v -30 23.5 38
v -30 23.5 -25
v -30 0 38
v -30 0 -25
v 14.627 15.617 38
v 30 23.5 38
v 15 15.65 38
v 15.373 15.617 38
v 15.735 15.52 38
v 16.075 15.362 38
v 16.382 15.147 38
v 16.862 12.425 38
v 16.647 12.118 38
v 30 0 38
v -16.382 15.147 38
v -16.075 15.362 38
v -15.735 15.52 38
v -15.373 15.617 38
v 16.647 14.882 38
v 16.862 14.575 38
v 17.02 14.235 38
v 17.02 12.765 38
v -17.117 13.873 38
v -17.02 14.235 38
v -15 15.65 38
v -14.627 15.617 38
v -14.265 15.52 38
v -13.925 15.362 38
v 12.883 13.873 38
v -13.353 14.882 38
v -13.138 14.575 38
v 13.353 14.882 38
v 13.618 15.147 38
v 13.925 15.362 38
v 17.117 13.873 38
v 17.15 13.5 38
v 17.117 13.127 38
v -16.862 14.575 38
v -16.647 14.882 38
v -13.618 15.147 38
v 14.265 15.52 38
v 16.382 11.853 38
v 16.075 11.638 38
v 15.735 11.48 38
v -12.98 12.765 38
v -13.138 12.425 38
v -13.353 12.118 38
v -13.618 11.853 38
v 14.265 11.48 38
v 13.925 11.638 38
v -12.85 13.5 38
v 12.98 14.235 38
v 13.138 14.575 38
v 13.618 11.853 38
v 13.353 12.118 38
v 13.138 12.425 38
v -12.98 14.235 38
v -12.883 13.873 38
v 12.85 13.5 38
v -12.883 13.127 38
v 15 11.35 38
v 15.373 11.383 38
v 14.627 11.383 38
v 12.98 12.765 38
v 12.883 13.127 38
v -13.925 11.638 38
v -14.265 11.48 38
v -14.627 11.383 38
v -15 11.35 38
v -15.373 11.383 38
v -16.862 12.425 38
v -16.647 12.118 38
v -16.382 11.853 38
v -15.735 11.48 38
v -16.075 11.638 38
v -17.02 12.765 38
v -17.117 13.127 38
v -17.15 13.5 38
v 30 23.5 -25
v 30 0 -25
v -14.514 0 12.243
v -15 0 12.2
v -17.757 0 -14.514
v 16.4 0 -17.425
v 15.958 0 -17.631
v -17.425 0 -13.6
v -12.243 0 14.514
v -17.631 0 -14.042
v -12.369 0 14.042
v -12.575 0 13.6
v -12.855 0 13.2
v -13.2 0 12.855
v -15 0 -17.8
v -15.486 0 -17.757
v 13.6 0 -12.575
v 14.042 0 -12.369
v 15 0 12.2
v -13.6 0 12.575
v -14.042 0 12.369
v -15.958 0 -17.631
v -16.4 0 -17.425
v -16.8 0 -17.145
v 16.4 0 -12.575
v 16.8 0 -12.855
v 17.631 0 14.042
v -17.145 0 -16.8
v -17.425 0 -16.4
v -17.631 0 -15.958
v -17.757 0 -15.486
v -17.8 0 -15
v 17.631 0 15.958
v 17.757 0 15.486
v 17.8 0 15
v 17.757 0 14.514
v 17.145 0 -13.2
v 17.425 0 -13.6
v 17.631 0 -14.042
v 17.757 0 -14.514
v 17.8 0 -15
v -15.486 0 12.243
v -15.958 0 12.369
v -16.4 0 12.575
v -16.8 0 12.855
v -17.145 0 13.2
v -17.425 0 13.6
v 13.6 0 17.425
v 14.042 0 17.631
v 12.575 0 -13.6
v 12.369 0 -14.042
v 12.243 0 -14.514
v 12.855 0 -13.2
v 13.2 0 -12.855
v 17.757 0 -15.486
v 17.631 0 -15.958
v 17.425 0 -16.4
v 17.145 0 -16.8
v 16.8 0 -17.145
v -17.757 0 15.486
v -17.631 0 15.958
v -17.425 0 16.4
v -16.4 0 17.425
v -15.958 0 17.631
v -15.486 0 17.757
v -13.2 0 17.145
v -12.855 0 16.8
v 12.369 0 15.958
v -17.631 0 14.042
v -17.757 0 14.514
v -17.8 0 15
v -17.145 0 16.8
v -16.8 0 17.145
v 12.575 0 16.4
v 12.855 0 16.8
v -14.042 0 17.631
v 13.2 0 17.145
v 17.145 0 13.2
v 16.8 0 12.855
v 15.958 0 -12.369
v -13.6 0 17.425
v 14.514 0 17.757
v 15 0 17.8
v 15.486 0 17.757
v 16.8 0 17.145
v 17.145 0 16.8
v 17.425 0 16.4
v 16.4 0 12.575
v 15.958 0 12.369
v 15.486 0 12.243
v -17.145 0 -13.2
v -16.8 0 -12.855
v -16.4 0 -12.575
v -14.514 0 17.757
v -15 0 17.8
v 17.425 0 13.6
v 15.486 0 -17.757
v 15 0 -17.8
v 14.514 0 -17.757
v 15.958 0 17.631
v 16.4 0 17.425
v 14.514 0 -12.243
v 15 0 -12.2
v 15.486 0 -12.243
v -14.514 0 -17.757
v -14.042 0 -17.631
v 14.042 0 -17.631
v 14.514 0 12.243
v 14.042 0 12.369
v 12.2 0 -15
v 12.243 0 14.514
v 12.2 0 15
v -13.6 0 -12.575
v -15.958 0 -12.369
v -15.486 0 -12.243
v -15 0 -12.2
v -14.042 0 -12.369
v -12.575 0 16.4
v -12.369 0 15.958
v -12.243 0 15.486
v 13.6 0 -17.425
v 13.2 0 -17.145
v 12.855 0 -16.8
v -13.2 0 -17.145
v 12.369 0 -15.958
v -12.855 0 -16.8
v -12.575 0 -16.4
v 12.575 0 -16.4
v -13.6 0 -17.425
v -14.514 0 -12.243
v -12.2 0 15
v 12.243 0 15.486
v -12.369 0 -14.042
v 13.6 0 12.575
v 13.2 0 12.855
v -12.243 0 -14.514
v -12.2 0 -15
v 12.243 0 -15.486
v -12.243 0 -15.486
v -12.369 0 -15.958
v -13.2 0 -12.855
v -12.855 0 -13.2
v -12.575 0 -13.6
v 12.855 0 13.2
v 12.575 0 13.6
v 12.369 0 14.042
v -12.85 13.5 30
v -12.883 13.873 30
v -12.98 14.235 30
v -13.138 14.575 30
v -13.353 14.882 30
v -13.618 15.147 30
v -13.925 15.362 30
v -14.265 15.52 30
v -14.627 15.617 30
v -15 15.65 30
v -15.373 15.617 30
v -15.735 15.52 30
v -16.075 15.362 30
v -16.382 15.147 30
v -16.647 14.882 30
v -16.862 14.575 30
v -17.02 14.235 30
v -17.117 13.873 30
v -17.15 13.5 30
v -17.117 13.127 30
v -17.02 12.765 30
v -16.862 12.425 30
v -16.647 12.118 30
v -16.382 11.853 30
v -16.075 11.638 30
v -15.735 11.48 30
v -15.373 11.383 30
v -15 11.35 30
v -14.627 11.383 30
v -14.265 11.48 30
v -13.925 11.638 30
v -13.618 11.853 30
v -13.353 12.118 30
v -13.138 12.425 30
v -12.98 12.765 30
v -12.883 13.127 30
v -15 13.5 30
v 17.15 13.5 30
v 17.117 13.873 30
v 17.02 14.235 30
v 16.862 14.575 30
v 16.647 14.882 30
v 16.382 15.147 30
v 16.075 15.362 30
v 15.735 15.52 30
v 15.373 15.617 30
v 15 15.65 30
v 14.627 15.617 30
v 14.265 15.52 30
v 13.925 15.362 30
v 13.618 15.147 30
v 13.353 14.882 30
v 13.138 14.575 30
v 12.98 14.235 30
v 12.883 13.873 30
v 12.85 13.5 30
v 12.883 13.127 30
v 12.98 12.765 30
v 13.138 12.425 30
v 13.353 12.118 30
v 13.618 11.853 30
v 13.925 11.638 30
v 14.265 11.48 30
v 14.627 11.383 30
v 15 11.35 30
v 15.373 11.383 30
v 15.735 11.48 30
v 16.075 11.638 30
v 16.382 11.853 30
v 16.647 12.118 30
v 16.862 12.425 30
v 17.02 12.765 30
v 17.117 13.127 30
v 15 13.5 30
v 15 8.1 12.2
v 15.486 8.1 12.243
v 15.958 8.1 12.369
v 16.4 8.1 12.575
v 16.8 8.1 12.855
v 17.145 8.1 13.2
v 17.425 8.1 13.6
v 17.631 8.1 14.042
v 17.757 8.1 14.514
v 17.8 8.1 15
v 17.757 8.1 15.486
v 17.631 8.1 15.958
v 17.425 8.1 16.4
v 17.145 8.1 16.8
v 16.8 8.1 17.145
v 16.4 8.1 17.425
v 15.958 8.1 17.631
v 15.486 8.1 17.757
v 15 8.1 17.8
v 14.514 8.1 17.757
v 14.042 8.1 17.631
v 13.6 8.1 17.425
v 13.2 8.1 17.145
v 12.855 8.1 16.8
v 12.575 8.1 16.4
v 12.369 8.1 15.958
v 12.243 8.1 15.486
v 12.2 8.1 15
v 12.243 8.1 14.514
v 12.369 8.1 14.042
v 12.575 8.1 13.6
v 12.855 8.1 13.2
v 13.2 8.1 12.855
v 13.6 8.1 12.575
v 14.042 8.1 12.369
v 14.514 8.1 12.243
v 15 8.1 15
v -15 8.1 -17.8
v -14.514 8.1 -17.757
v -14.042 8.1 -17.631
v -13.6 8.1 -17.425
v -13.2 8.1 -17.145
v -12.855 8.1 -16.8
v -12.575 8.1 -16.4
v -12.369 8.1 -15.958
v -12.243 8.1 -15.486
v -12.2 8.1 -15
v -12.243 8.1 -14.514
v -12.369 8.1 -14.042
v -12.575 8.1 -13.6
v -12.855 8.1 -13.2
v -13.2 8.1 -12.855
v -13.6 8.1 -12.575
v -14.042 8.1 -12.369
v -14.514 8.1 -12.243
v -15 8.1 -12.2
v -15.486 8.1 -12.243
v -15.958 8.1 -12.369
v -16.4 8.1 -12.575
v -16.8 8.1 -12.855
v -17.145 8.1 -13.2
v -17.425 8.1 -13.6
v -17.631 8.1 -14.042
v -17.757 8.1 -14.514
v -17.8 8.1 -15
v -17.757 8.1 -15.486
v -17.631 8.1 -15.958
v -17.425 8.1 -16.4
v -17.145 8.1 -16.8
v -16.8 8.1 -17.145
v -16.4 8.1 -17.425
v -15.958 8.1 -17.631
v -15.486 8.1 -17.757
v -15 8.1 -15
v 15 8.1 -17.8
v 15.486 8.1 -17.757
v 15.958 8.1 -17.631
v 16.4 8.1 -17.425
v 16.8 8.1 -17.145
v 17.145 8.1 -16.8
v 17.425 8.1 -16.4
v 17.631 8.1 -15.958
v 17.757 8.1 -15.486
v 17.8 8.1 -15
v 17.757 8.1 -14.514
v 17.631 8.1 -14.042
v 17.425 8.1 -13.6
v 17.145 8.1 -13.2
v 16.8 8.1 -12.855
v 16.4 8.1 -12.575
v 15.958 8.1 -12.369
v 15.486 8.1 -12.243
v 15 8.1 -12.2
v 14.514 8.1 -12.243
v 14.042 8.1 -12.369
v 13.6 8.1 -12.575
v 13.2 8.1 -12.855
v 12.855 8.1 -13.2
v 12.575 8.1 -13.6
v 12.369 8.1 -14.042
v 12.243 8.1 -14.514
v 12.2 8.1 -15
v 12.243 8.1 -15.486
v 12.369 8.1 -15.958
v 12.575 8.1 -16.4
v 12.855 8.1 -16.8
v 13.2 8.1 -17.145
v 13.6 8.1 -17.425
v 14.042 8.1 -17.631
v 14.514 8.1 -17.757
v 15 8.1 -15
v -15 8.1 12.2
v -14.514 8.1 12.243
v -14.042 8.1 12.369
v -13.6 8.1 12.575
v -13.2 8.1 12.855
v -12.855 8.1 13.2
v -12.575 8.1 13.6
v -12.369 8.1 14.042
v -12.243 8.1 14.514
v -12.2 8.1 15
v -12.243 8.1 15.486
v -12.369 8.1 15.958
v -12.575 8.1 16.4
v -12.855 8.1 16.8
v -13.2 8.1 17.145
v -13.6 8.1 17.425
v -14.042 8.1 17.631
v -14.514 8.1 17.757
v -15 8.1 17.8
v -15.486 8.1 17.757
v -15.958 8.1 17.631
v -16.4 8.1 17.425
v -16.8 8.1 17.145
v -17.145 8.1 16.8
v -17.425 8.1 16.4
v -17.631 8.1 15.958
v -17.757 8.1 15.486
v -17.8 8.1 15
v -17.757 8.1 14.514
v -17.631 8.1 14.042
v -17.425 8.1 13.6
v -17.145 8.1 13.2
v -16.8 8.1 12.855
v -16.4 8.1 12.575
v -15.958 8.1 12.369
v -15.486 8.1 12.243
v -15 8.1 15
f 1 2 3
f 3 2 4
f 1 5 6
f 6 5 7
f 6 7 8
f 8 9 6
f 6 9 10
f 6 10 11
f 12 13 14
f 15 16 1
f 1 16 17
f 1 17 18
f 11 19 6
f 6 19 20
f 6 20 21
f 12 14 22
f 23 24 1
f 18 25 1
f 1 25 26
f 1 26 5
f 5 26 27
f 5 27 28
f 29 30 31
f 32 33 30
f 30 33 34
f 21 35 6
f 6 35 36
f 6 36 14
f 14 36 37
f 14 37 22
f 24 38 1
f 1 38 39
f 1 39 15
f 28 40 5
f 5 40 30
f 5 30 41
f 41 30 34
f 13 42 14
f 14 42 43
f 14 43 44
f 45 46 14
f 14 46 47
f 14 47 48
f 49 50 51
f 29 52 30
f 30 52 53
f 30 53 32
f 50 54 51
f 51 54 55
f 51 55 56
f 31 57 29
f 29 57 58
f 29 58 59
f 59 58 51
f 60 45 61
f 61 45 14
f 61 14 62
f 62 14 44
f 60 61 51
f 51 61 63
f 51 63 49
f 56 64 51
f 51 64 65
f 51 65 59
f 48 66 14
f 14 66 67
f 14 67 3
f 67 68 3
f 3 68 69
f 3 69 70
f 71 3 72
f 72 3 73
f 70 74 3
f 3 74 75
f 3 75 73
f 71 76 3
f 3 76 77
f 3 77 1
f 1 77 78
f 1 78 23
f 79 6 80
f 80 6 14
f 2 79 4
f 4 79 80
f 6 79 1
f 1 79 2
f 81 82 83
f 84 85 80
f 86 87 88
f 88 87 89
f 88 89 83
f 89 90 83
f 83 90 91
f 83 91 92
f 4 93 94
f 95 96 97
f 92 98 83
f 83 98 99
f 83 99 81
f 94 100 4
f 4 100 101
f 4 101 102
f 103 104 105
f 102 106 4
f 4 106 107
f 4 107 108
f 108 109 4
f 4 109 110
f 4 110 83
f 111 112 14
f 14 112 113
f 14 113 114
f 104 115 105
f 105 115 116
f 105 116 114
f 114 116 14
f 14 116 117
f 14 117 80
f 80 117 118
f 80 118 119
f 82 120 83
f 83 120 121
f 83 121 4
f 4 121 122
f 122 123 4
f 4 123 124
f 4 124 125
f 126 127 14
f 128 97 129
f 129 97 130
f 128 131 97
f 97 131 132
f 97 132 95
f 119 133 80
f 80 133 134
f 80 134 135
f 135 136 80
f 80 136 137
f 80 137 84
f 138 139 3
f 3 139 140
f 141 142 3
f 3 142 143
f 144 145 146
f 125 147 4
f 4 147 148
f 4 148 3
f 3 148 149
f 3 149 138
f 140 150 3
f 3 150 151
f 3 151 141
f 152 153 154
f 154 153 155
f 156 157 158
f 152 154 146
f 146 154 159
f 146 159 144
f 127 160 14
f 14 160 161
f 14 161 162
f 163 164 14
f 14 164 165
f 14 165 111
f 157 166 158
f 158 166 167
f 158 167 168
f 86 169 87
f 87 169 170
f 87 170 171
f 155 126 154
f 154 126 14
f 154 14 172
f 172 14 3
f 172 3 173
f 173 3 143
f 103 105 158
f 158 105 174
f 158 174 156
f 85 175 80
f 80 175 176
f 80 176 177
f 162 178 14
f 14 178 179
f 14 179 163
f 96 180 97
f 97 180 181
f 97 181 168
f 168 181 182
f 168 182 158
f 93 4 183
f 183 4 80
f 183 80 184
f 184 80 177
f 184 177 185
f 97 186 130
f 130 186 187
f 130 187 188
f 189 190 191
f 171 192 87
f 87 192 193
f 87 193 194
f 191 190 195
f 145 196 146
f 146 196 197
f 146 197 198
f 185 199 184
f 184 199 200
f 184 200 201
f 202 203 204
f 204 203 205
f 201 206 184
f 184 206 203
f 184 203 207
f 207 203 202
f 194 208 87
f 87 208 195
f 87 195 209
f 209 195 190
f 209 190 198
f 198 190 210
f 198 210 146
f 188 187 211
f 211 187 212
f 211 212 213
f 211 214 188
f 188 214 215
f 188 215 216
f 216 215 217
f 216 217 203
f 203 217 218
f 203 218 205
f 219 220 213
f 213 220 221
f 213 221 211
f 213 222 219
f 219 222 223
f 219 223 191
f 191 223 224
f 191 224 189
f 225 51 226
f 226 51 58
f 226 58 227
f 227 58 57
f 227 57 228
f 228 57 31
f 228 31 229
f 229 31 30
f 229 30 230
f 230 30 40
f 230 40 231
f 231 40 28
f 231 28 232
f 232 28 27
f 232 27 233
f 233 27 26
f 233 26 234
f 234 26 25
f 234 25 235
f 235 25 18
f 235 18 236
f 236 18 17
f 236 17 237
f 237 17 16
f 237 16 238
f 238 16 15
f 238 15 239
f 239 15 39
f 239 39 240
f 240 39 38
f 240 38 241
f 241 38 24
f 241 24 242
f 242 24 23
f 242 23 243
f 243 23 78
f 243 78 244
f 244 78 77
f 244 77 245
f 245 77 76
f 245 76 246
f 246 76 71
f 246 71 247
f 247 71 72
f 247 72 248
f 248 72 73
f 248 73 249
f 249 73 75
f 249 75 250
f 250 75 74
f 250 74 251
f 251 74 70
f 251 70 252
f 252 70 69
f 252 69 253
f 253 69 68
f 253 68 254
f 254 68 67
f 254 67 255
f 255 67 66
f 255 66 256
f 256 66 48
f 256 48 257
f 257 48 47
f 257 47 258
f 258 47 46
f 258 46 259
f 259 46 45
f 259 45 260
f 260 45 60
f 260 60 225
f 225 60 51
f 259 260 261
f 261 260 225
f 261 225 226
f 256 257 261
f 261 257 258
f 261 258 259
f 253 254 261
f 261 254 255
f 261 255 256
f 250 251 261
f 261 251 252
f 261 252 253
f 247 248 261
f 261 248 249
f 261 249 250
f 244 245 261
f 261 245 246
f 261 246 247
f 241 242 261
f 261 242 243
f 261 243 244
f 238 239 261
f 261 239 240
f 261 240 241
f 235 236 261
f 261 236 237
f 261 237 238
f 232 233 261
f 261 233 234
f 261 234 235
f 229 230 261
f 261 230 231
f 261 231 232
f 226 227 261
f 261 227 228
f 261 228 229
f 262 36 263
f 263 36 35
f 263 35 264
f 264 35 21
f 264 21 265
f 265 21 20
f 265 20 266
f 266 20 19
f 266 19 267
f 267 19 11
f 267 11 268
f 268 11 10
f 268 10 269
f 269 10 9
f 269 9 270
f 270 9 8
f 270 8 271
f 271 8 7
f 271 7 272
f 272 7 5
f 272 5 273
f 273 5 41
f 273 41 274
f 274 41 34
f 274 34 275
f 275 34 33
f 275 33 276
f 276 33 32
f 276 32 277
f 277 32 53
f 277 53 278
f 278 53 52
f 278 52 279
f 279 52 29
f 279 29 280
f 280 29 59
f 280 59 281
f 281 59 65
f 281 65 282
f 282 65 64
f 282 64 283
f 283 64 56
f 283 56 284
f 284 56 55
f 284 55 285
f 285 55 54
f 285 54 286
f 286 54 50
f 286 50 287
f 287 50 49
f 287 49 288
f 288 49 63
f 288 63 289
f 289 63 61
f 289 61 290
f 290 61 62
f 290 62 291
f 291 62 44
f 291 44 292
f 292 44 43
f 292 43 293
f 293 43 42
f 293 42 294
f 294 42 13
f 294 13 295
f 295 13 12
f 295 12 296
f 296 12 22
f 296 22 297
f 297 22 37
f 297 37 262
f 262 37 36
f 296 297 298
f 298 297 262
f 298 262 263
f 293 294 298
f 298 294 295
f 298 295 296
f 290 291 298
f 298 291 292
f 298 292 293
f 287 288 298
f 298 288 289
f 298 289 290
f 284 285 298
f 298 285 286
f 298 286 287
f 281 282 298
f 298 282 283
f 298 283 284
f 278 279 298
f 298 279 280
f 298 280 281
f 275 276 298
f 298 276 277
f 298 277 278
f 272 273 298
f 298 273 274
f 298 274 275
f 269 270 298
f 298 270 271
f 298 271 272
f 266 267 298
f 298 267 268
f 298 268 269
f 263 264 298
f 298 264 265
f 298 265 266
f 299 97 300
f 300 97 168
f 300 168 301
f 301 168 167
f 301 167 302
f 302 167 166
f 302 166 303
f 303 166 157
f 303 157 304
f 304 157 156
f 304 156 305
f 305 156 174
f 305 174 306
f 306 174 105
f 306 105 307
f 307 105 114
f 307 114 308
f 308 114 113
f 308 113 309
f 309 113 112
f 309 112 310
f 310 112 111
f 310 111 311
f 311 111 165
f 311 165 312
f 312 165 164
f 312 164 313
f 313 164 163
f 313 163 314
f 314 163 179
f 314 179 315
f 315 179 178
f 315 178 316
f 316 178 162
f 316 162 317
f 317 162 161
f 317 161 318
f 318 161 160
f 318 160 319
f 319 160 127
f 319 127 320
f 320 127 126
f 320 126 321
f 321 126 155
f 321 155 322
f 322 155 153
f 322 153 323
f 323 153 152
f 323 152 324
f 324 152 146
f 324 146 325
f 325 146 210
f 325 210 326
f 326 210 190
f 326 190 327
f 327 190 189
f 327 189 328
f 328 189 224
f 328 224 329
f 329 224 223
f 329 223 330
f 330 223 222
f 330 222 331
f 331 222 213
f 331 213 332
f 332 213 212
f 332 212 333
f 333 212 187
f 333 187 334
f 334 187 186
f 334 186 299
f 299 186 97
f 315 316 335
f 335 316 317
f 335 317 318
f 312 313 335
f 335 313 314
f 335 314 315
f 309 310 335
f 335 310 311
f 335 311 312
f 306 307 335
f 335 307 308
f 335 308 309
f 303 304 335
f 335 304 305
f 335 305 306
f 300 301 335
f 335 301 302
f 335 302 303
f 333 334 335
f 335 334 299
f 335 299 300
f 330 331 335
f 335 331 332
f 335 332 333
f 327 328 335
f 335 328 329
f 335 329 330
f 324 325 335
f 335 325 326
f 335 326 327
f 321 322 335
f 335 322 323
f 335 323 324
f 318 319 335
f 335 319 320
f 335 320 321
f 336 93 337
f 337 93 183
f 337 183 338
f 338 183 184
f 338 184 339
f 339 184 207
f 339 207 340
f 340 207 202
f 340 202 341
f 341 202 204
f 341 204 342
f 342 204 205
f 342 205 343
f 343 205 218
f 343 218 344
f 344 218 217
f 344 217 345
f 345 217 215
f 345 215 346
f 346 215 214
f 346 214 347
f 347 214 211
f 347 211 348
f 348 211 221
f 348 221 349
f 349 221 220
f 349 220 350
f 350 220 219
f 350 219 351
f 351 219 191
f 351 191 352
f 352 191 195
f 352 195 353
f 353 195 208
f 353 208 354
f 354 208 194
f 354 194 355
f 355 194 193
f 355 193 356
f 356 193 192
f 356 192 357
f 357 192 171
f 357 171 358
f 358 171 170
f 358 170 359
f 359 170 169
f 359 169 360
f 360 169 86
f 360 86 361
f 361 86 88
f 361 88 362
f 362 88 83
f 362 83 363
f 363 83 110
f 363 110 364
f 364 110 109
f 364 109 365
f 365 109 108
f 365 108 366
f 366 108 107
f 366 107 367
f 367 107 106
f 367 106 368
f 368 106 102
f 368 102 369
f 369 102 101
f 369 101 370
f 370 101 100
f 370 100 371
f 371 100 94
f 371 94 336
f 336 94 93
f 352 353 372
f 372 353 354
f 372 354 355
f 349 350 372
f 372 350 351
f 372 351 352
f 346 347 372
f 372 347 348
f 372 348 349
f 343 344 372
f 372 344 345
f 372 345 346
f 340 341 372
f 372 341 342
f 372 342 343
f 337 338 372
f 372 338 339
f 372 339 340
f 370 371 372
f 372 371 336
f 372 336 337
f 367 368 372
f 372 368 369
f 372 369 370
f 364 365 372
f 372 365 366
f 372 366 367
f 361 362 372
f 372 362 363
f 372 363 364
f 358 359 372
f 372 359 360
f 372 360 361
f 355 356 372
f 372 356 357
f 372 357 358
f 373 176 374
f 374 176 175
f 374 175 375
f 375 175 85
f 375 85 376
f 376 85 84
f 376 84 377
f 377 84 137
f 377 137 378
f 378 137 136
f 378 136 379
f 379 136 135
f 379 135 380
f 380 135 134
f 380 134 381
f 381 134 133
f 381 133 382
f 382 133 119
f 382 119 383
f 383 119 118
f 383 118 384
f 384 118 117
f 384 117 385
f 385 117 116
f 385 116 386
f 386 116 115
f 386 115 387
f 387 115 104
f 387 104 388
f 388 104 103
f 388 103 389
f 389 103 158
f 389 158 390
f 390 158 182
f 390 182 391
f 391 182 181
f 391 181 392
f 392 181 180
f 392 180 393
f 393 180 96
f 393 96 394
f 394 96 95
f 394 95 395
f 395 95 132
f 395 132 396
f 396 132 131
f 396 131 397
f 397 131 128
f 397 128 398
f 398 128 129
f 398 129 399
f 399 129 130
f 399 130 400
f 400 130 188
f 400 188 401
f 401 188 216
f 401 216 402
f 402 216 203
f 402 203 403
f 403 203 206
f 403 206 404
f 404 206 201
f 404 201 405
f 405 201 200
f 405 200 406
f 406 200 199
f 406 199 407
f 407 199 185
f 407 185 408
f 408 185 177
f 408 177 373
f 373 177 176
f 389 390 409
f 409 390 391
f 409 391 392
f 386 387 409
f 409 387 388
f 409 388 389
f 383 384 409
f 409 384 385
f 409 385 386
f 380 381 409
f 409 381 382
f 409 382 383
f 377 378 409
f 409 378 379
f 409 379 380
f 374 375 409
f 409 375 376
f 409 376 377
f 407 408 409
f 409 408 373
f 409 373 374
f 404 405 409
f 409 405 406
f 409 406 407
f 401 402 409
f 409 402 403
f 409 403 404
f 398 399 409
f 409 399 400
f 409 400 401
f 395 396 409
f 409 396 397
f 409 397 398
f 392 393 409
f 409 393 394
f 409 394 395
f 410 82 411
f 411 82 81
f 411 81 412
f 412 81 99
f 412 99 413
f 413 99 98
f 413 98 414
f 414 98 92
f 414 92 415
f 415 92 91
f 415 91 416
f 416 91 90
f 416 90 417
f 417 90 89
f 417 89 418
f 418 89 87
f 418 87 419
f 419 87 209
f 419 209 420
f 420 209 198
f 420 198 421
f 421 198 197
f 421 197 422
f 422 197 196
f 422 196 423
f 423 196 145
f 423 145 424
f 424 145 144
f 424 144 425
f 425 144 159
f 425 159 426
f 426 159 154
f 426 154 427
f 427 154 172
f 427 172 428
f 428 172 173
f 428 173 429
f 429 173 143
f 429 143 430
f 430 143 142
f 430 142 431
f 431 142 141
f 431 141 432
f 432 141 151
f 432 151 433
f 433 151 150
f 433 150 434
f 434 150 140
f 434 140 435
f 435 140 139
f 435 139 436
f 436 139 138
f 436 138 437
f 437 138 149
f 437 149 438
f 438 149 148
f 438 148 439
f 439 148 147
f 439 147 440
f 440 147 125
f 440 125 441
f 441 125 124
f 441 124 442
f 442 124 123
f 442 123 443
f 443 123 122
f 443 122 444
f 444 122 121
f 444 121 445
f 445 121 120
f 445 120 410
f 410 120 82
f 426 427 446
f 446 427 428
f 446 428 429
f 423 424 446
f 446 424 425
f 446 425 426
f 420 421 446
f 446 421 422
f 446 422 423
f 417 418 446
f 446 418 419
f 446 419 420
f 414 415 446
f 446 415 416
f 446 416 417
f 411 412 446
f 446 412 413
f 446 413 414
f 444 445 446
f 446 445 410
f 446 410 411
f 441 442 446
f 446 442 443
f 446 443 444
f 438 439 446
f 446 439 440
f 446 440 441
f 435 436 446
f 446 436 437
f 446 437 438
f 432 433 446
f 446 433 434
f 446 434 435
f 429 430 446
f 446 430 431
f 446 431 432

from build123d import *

# Parameters (mm, degrees)
SK_TOP_W             = 60
SK_TOP_H             = 63
EX_TOP_DEPTH         = 23.5
SK_RAILBOLTS_R       = 2.15
CUT_RAILBOLTS_DEPTH  = 8
SK_INSERTS_M4_R      = 2.8
CUT_INSERTS_M4_DEPTH = 8.1


with BuildPart() as part:
    # SK_Top → EX_Top (new body)
    with BuildSketch(Plane(origin=(0, 0, 0), x_dir=(1, 0, 0), z_dir=(0, 1, 0))):
        with Locations((0, -6.5)):
            Rectangle(SK_TOP_W, SK_TOP_H)
    extrude(amount=EX_TOP_DEPTH)

    # SK_RailBolts → CUT_RailBolts (cut)
    with BuildSketch(Plane.XY.offset(38)):
        with Locations((15, 13.5)):
            Circle(SK_RAILBOLTS_R)
        with Locations((-15, 13.5)):
            Circle(SK_RAILBOLTS_R)
    extrude(amount=-CUT_RAILBOLTS_DEPTH, mode=Mode.SUBTRACT)

    # SK_Inserts_M4 → CUT_Inserts_M4 (cut)
    with BuildSketch(Plane(origin=(0, 0, 0), x_dir=(1, 0, 0), z_dir=(0, 1, 0))):
        with Locations((15, -15)):
            Circle(SK_INSERTS_M4_R)
        with Locations((-15, -15)):
            Circle(SK_INSERTS_M4_R)
        with Locations((15, 15)):
            Circle(SK_INSERTS_M4_R)
        with Locations((-15, 15)):
            Circle(SK_INSERTS_M4_R)
    extrude(amount=CUT_INSERTS_M4_DEPTH, mode=Mode.SUBTRACT)


solid = part.part
